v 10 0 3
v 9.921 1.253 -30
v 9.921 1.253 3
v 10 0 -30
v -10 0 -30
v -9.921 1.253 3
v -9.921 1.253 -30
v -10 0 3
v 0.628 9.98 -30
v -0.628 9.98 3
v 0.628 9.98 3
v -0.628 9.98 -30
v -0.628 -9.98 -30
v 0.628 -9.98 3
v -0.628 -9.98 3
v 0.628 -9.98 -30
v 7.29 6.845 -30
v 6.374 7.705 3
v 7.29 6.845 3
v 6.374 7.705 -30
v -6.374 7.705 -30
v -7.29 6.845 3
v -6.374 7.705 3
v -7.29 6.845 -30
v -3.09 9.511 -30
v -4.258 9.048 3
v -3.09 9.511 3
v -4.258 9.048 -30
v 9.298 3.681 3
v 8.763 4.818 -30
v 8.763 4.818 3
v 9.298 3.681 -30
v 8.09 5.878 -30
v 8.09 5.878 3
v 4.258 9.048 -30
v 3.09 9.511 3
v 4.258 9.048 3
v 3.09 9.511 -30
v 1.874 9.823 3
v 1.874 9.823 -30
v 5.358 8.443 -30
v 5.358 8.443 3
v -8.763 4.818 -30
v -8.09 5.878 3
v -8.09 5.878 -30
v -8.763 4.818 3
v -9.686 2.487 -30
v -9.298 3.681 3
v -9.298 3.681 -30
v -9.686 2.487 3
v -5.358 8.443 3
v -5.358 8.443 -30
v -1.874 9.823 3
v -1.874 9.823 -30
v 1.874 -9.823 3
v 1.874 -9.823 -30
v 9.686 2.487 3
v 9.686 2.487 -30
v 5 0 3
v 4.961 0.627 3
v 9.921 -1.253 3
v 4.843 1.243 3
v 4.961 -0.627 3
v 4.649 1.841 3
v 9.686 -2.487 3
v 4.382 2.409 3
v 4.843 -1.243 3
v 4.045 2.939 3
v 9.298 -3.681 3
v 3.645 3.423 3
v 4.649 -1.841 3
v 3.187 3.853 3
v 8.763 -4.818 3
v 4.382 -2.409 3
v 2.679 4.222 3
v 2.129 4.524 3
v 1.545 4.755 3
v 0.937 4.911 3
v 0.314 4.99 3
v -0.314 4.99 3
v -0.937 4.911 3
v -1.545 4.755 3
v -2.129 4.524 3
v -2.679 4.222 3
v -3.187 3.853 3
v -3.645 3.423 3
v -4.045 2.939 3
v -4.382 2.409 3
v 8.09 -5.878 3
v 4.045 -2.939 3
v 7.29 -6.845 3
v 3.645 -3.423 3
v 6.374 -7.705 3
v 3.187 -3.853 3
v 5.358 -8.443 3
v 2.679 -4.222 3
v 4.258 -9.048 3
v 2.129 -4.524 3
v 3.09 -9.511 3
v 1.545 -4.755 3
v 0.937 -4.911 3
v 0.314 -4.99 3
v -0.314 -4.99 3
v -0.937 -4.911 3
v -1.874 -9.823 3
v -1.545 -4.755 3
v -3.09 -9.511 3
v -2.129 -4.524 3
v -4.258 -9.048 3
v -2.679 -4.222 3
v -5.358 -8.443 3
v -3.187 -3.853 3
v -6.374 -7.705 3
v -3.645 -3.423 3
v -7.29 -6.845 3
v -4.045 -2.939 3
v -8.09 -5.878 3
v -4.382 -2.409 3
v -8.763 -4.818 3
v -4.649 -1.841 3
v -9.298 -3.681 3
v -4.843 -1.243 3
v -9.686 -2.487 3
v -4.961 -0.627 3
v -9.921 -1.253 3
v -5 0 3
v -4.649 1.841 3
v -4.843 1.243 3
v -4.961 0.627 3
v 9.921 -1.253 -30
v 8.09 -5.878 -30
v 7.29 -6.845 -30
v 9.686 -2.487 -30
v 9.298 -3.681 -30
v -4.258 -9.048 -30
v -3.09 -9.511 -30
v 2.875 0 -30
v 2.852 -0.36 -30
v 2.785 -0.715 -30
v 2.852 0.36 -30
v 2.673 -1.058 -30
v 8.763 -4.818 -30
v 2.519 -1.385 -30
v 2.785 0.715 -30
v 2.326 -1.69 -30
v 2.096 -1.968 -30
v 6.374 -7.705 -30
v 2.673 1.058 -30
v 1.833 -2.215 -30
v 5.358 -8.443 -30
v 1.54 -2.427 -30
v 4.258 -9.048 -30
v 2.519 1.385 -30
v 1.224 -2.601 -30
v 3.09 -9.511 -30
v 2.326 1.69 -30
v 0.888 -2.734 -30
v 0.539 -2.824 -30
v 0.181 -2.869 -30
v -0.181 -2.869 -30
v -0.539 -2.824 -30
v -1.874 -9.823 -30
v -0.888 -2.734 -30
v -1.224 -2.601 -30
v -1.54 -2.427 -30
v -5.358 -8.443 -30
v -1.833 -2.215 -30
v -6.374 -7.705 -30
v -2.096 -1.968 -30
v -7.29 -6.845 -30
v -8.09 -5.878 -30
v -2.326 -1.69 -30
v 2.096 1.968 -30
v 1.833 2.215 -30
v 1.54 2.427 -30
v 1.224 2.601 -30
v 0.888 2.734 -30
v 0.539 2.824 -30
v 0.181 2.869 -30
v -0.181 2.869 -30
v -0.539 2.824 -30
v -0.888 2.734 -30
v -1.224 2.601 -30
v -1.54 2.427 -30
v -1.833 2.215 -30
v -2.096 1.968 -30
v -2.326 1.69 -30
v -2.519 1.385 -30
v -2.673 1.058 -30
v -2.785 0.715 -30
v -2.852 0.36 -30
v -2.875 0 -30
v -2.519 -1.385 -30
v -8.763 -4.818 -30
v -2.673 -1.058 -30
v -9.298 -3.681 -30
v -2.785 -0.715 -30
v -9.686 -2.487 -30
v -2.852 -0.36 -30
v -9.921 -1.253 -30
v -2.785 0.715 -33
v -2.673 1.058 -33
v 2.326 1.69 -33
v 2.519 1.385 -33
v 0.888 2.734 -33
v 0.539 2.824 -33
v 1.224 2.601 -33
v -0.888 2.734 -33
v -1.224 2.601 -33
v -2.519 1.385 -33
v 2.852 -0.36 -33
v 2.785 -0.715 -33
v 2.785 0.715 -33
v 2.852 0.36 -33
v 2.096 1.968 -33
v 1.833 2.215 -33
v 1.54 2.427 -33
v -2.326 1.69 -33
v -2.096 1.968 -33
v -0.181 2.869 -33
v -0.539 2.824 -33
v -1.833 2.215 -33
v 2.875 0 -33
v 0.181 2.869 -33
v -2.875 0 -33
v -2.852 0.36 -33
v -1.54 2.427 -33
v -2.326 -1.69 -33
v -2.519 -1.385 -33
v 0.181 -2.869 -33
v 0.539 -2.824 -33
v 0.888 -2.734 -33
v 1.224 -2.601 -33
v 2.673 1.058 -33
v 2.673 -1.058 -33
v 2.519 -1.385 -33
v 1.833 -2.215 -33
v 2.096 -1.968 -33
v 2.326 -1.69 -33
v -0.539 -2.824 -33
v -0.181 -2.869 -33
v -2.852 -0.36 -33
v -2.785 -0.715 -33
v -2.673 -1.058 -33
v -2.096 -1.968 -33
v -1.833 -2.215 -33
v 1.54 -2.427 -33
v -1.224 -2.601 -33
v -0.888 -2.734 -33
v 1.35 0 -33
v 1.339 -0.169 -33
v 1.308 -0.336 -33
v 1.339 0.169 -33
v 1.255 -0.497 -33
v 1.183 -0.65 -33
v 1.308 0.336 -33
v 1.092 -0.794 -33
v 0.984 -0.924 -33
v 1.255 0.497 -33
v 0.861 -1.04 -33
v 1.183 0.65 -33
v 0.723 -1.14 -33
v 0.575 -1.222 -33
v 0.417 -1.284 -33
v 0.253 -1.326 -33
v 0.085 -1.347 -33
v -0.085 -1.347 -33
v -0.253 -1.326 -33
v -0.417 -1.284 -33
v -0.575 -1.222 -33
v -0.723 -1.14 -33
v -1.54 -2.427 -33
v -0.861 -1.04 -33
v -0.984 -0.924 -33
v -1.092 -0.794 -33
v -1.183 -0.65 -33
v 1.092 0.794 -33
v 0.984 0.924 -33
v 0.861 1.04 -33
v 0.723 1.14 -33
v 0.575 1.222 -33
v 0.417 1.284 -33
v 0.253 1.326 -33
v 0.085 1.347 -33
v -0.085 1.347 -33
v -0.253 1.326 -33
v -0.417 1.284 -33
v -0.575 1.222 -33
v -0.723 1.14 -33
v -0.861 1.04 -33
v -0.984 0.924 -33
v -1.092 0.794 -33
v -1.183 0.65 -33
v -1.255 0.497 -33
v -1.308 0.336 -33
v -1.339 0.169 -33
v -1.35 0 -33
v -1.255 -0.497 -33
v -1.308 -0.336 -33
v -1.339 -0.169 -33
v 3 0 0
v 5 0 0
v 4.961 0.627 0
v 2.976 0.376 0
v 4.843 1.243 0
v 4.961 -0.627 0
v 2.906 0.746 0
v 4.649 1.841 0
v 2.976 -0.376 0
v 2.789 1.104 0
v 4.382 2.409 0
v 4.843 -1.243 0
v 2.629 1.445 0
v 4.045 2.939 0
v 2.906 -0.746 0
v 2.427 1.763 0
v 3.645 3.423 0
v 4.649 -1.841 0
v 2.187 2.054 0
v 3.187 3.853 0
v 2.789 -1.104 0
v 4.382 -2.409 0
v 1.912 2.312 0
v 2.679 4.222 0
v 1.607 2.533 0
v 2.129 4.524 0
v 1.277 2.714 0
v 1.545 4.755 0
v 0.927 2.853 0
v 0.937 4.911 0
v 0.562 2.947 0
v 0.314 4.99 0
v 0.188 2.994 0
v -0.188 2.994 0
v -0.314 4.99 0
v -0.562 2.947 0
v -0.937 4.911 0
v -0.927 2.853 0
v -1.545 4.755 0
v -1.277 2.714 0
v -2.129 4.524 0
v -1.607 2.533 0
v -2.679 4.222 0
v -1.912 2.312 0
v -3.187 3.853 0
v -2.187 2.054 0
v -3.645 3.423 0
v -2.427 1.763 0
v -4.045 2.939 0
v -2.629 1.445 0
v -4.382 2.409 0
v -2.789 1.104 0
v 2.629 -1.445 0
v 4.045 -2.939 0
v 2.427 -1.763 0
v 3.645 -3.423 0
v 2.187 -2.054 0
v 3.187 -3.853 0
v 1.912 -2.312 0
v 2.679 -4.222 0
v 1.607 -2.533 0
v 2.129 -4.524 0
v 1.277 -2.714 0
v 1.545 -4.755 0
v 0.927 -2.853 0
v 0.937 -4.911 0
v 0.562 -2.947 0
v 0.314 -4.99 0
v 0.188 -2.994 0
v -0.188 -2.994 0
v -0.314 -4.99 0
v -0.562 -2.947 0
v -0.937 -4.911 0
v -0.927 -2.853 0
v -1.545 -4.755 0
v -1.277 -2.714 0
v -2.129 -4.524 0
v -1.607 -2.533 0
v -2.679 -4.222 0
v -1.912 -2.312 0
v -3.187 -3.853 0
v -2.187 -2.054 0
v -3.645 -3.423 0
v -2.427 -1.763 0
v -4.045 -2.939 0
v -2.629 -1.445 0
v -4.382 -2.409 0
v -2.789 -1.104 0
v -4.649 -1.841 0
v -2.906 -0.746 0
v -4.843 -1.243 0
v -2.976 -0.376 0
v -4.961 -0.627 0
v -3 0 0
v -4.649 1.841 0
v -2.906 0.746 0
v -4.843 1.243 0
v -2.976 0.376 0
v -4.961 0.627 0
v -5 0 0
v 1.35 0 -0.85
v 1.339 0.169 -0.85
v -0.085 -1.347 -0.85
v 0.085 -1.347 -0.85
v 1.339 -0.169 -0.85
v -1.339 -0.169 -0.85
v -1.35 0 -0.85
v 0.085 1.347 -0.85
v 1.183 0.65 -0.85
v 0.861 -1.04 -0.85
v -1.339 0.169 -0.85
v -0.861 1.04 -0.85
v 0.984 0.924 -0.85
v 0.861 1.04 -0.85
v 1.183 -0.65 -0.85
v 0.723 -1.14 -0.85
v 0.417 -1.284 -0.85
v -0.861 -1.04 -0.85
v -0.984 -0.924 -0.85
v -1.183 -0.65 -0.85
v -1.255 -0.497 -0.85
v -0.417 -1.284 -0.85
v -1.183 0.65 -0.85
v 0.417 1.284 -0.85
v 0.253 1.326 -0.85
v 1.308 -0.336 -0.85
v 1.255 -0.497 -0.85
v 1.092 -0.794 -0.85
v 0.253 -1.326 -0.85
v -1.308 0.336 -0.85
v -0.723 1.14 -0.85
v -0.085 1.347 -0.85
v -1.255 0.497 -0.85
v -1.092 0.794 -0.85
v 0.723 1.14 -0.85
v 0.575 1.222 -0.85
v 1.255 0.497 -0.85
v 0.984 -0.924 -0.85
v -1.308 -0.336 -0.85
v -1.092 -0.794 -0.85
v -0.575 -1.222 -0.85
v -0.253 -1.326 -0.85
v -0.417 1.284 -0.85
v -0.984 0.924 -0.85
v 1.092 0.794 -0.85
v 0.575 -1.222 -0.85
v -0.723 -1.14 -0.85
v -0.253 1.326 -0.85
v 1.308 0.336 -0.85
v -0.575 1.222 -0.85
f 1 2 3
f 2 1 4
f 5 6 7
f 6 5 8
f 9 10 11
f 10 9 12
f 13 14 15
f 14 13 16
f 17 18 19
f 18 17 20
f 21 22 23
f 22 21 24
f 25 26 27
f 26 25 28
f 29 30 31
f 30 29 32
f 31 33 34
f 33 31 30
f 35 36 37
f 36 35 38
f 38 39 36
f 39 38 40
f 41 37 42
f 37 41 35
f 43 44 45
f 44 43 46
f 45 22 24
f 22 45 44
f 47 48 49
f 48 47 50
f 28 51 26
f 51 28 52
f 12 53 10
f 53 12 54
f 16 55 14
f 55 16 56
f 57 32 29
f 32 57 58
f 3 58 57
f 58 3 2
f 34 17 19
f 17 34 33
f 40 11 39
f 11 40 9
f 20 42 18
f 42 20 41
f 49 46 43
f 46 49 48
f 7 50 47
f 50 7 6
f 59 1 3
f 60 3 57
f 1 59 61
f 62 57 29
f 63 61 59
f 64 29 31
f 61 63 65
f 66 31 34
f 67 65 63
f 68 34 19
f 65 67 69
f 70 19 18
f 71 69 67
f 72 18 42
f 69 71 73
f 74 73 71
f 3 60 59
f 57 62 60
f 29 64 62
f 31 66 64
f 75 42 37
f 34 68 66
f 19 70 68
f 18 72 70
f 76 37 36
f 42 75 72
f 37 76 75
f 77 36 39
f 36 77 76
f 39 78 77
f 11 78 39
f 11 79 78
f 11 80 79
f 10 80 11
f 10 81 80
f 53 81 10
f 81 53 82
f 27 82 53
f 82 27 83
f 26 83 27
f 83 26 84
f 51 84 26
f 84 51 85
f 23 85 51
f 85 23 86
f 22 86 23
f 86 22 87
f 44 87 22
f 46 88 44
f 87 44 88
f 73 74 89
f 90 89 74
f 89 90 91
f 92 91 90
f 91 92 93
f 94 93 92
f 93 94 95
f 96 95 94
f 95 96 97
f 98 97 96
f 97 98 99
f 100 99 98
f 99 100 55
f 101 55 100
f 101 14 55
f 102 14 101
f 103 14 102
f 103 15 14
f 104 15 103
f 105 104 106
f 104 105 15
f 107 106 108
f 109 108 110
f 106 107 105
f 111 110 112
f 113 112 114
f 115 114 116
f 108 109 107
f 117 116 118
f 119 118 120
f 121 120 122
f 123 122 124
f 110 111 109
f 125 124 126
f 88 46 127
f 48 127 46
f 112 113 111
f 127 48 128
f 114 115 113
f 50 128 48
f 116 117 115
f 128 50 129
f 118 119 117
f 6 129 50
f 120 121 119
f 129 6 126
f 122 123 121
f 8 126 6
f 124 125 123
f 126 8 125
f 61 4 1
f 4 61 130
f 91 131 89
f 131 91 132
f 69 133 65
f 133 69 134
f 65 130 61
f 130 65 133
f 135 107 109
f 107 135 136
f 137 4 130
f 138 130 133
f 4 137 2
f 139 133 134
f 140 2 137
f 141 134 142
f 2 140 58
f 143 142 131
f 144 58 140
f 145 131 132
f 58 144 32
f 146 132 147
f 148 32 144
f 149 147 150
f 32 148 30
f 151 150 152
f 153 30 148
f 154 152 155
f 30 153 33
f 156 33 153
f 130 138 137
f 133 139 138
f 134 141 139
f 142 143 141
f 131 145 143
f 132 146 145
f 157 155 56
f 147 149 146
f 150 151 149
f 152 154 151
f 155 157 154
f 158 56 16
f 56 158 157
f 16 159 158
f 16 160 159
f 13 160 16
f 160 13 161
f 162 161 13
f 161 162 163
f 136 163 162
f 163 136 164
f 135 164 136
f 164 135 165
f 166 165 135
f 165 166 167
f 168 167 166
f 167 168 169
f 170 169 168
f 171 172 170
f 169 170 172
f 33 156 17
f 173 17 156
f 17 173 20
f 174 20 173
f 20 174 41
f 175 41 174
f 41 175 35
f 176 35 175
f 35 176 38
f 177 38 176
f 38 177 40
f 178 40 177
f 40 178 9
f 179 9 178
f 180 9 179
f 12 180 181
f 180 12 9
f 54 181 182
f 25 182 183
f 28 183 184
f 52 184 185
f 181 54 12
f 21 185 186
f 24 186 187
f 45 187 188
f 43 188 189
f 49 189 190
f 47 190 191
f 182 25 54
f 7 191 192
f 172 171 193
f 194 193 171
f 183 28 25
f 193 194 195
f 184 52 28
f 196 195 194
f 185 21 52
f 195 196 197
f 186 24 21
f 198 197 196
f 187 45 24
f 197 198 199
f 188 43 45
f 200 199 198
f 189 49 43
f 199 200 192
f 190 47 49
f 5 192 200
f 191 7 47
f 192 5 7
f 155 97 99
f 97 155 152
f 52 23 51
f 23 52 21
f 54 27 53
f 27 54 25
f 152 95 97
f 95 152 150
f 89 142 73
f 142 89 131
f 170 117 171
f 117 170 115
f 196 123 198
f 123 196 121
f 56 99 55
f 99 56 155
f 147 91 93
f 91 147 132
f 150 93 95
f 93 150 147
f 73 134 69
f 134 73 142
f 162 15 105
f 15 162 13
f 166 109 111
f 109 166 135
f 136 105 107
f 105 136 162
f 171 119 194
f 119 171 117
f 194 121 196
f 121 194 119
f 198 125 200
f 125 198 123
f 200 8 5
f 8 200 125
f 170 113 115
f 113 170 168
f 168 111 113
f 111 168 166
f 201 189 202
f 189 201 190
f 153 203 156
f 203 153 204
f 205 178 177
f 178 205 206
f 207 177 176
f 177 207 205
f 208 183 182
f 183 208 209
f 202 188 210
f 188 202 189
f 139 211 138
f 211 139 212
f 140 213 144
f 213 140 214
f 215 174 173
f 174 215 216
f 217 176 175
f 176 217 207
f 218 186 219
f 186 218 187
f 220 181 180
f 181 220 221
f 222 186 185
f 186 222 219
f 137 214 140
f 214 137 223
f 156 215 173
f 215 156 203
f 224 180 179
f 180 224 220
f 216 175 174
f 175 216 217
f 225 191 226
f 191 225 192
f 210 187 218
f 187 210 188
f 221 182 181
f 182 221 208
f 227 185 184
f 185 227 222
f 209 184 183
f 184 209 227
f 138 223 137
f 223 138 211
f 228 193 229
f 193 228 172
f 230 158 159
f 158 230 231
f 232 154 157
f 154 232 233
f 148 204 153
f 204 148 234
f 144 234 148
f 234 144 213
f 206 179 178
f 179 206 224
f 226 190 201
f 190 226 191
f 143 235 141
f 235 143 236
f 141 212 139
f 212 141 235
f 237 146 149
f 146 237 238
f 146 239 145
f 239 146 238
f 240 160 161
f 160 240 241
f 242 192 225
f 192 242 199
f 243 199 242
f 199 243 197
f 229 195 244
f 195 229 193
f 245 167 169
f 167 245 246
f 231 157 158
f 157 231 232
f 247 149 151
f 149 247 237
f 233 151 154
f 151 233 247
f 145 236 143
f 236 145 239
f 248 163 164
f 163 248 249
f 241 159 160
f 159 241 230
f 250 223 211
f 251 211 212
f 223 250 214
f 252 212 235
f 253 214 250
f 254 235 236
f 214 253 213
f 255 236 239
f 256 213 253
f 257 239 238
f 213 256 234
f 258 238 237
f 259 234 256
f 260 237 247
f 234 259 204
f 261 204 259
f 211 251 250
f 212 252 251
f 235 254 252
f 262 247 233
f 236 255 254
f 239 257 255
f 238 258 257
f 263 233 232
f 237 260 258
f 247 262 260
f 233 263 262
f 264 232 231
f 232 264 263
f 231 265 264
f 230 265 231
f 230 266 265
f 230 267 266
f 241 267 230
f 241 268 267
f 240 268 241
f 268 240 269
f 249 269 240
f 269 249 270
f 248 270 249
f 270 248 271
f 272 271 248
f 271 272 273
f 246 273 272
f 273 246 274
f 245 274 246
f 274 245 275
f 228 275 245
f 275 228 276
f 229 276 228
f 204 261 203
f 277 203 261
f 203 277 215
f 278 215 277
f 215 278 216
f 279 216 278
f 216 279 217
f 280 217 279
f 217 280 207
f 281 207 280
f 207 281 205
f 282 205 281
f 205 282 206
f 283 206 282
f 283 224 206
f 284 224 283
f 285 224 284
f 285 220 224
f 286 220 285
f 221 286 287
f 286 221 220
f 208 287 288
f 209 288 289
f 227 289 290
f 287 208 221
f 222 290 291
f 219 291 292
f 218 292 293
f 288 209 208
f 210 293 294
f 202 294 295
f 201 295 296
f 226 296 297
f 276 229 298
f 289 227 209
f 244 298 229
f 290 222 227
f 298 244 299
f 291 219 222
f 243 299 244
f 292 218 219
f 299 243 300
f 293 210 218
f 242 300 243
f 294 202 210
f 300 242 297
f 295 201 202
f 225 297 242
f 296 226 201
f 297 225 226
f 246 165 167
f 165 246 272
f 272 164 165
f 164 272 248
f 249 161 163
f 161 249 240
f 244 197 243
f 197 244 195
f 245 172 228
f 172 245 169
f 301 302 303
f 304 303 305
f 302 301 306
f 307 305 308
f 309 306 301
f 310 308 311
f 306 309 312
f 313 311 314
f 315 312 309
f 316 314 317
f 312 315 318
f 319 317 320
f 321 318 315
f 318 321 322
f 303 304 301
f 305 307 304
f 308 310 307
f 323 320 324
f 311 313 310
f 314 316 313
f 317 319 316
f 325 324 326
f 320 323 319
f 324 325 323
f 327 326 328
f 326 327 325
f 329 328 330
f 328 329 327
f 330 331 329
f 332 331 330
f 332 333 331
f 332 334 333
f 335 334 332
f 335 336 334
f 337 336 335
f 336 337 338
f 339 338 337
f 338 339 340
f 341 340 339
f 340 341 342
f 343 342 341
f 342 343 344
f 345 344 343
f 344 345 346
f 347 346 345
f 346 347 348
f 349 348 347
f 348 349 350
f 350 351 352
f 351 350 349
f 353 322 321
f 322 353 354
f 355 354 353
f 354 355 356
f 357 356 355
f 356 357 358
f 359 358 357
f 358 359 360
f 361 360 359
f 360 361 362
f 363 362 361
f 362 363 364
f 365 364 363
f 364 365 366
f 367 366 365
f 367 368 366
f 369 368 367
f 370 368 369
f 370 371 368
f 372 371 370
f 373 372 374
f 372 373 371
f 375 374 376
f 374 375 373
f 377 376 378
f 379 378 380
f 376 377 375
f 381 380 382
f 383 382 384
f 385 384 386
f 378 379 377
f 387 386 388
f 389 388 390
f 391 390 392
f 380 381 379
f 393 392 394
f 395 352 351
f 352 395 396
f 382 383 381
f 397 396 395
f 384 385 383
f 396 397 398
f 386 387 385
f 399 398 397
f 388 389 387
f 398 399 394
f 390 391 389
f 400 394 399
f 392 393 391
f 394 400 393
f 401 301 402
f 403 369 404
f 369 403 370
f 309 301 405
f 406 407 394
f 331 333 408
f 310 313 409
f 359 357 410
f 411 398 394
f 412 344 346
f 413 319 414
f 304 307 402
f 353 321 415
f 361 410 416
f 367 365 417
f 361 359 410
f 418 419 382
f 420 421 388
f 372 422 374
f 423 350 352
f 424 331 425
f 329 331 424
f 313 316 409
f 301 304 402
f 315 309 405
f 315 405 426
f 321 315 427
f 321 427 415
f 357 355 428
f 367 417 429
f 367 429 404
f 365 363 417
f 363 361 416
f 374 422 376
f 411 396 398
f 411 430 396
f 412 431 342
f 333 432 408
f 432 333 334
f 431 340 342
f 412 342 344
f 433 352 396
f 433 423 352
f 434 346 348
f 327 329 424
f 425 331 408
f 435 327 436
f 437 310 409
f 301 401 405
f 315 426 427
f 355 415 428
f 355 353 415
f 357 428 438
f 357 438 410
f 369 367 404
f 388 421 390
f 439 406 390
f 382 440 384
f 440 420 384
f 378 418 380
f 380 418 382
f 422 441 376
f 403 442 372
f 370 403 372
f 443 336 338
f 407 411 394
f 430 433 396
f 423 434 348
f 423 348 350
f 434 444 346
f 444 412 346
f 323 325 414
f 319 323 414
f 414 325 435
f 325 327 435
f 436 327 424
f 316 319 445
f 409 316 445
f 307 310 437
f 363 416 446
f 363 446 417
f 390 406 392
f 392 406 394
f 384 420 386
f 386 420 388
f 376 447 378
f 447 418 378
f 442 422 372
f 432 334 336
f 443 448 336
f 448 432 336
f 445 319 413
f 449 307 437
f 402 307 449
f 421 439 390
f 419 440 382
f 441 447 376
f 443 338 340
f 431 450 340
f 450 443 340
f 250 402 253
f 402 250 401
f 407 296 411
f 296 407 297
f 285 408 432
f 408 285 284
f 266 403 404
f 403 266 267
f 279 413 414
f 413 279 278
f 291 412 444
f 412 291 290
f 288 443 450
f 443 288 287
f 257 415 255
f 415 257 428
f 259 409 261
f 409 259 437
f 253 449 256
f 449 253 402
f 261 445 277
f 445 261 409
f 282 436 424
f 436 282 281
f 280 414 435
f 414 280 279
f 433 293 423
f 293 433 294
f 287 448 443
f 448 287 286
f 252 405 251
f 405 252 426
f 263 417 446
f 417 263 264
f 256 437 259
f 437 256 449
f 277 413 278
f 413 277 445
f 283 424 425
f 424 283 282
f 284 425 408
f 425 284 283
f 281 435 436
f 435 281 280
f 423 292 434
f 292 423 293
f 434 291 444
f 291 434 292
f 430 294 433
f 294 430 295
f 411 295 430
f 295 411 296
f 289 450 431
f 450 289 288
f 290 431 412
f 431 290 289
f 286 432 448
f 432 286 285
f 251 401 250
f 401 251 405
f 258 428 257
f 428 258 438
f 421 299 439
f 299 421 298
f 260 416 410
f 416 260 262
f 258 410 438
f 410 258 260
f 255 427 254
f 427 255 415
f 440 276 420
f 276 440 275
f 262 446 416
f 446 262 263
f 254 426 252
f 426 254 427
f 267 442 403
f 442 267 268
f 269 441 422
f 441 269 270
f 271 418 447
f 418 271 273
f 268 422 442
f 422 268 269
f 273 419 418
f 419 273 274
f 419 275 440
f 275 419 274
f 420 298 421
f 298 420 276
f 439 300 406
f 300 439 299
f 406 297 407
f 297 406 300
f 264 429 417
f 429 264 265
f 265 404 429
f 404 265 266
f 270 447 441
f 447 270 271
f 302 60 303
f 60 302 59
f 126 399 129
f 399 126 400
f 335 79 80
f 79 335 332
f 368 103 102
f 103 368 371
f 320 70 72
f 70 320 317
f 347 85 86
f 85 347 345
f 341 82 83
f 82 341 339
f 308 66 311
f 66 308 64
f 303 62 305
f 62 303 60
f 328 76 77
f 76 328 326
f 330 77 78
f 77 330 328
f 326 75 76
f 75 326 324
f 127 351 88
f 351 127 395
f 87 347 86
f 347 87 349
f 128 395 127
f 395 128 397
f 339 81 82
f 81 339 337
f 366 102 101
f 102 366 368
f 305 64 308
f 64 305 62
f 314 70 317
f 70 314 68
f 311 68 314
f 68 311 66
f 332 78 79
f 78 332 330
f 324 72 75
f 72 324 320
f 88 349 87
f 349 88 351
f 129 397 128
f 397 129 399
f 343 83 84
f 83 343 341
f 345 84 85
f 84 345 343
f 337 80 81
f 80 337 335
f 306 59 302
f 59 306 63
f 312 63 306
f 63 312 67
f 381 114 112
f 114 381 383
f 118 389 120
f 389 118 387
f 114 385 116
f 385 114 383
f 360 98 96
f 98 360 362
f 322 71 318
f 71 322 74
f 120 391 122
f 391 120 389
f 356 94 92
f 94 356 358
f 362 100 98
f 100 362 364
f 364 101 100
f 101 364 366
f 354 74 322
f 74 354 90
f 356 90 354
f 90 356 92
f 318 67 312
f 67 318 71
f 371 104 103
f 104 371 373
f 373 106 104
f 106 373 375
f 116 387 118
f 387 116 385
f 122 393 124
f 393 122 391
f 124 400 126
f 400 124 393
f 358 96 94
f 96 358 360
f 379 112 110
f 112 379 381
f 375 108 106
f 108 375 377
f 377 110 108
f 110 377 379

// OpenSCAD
$fn = 50;

difference() {
	union() {
		translate(v = [0, 0, -30.0]) {
			cylinder(h = 33, r = 10.0);
		}
		#translate(v = [0, 0, -33.0]) {
			cylinder(h = 33, r = 2.875);
		}
	}
	union() {
		translate(v = [0, 0, 0]) {
			rotate(a = [0, 0, 0]) {
				difference() {
					union() {
						translate(v = [0, 0, -33.0]) {
							cylinder(h = 33, r = 1.0);
						}
						translate(v = [0, 0, -0.85]) {
							cylinder(h = 0.85, r1 = 1.35, r2 = 3.0);
						}
						translate(v = [0, 0, -33.0]) {
							cylinder(h = 33, r = 1.35);
						}
						translate(v = [0, 0, -33.0]) {
							cylinder(h = 33, r = 1.0);
						}
					}
					union();
				}
			}
		}
		#cylinder(h = 3, r = 5.0);
	}
}
